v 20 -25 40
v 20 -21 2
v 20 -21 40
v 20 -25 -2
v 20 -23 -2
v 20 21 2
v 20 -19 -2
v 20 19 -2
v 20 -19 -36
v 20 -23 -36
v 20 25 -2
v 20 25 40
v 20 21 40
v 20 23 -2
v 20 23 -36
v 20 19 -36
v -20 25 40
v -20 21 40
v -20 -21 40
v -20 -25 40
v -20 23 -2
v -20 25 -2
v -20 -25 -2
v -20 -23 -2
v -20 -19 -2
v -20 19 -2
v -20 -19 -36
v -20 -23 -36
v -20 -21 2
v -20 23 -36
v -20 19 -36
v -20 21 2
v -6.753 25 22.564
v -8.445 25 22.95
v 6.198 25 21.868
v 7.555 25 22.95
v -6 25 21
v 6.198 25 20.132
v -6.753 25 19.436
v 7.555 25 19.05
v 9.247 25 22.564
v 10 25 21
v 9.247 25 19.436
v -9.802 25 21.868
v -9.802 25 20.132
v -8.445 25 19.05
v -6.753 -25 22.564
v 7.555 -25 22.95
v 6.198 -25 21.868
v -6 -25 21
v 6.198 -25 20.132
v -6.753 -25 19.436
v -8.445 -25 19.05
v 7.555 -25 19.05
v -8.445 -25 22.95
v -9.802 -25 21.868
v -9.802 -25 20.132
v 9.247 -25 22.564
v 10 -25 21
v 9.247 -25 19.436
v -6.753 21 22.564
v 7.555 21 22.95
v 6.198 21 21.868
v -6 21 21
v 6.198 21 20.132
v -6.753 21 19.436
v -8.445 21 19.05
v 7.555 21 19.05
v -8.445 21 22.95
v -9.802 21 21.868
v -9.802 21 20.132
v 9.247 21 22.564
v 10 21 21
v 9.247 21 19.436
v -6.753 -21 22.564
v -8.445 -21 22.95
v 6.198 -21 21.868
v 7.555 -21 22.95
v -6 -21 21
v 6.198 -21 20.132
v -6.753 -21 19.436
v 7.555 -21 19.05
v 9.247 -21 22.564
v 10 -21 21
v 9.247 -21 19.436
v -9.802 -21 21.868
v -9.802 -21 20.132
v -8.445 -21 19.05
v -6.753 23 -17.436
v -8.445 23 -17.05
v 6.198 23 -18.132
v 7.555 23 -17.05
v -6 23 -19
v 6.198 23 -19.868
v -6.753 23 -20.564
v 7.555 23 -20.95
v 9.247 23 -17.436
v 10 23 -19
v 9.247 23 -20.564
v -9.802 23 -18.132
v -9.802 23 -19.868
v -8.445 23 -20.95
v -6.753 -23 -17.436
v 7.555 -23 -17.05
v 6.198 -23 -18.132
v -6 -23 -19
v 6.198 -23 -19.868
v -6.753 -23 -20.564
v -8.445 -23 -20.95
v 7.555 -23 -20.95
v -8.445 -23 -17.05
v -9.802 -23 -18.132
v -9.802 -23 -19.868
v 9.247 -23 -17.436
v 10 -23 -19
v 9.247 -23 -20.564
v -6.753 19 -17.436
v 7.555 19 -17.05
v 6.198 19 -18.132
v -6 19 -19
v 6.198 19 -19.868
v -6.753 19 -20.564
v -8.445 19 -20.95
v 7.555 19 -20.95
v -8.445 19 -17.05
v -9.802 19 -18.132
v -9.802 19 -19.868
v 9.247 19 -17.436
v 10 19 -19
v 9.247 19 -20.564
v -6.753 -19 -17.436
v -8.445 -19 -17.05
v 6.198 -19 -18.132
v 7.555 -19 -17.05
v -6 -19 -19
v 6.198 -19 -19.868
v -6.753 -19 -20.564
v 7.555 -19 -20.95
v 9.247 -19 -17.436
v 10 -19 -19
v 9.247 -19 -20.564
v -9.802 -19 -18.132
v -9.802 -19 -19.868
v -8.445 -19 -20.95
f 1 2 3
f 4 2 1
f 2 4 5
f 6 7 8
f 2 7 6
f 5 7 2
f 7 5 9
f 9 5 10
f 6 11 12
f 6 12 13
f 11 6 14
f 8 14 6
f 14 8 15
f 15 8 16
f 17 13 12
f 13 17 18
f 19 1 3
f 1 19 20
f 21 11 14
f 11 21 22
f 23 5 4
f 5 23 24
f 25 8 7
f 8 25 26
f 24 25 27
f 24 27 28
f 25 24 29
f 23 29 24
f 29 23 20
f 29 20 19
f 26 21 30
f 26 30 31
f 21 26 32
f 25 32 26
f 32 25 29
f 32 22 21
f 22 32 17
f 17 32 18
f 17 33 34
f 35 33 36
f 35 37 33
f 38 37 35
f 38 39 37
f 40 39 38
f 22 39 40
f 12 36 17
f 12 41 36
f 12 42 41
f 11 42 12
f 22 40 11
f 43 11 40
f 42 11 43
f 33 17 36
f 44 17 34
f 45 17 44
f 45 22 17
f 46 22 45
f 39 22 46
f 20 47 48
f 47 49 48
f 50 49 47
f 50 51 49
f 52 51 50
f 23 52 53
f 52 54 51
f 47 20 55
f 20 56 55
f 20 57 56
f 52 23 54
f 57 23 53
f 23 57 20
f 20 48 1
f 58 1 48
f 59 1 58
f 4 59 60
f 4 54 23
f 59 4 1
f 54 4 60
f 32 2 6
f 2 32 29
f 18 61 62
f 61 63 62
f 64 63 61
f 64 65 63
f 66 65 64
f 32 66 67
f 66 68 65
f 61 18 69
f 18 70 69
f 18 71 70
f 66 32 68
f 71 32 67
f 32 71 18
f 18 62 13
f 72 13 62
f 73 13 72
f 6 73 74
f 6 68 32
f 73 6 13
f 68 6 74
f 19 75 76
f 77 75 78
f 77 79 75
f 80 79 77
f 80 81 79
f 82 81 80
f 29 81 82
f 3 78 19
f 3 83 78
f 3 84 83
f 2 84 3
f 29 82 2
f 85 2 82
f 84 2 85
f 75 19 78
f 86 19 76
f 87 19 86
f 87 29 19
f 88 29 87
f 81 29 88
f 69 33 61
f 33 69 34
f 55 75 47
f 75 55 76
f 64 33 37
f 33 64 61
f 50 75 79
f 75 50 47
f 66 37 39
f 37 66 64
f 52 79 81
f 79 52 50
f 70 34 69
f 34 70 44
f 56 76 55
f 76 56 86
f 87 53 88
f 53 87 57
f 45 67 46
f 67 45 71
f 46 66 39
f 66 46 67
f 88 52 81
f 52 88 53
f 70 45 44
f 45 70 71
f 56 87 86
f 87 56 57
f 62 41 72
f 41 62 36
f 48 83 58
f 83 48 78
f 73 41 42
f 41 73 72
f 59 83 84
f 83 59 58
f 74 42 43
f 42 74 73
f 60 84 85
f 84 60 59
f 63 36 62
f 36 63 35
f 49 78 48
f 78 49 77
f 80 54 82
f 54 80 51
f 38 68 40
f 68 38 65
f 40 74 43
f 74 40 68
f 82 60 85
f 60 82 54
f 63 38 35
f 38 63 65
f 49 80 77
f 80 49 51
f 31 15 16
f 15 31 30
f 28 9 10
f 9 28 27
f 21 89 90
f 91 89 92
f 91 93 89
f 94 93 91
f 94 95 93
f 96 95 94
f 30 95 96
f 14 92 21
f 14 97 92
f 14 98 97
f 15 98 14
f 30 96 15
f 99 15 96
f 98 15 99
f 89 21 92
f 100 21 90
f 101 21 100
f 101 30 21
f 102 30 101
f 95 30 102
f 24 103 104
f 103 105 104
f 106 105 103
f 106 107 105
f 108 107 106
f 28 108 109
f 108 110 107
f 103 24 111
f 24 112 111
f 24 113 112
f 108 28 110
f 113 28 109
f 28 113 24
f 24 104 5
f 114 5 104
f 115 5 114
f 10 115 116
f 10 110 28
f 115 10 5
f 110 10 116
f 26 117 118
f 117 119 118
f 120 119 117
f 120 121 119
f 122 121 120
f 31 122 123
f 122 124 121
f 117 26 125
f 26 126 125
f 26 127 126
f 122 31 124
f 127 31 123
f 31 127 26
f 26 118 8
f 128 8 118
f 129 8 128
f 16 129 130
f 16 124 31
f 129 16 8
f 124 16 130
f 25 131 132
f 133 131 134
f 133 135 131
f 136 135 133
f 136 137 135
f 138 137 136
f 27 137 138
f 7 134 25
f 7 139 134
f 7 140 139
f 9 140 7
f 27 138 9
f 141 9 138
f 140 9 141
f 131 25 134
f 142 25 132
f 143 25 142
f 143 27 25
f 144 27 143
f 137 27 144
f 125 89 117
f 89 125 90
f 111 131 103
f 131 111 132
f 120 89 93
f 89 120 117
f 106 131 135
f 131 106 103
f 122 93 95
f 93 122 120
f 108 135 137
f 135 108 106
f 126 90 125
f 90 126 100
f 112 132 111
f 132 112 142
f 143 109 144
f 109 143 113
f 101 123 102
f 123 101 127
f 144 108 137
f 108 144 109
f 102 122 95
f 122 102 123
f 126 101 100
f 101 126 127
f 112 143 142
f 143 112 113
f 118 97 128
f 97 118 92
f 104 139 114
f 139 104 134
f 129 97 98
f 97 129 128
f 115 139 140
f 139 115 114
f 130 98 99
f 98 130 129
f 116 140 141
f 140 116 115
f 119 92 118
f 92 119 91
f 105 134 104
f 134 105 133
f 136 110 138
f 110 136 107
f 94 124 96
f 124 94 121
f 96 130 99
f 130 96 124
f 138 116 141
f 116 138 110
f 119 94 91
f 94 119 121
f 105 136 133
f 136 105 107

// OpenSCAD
/**

Brackets for Ikea LÖNSET Slatted bed base,
@idnorton

Licenced as Creative Commons Attribution Non Commercial 3.0
See https://creativecommons.org/licenses/by-nc/3.0/

Specifically you may not sell the design or products using the design.
You're welcome to use the design to build things for your own use :)

**/

length = 40;
screws = 4;
thickness = 4;
width_top = 42;
width_bottom = 38;

difference() {
    // Top outer
    translate([-(length/2), -((width_top + 2*thickness)/2), -(thickness/2)]) {
        cube([length, width_top + (2 * thickness), width_top]); 
    }

    // Top slot
    translate([-(length/2), -(width_top/2), (thickness/2)]) {
        cube([length, width_top, width_top]);
    }

    // Screw holes?
    //translate([-6, -((width_top + 2*thickness)/2), (width_top/2)]) {
    translate([-8, 0, (width_top/2)]) {
        screw(h = width_top + (2*thickness));
    }
    translate([8, 0, (width_top/2)]) {
        screw(h = width_top + (2*thickness));
    }
}

module screw(h) {
    rotate([90, 0, 0]) {
        cylinder(h=h, d=screws, center=true);
    }
}

difference() {
    // Bottom outer
    translate([-(length/2), -(width_bottom + 2*thickness)/2, -(width_bottom - (thickness/2))]) { 
        cube([length, width_bottom + (2 * thickness), width_bottom]); 
    }
    
    // Bottom slot
    translate([-(length/2), -(width_bottom/2), -(width_bottom + (thickness/2))]) {
        cube([length, width_bottom, width_bottom]);
    }

    // Screw holes?
    translate([-8, 0, -(width_bottom/2)]) {
        screw(h = width_bottom + (2*thickness));
    }
    translate([8, 0, -(width_bottom/2)]) {
        screw(h = width_bottom + (2*thickness));
        //screw();
    }
}
